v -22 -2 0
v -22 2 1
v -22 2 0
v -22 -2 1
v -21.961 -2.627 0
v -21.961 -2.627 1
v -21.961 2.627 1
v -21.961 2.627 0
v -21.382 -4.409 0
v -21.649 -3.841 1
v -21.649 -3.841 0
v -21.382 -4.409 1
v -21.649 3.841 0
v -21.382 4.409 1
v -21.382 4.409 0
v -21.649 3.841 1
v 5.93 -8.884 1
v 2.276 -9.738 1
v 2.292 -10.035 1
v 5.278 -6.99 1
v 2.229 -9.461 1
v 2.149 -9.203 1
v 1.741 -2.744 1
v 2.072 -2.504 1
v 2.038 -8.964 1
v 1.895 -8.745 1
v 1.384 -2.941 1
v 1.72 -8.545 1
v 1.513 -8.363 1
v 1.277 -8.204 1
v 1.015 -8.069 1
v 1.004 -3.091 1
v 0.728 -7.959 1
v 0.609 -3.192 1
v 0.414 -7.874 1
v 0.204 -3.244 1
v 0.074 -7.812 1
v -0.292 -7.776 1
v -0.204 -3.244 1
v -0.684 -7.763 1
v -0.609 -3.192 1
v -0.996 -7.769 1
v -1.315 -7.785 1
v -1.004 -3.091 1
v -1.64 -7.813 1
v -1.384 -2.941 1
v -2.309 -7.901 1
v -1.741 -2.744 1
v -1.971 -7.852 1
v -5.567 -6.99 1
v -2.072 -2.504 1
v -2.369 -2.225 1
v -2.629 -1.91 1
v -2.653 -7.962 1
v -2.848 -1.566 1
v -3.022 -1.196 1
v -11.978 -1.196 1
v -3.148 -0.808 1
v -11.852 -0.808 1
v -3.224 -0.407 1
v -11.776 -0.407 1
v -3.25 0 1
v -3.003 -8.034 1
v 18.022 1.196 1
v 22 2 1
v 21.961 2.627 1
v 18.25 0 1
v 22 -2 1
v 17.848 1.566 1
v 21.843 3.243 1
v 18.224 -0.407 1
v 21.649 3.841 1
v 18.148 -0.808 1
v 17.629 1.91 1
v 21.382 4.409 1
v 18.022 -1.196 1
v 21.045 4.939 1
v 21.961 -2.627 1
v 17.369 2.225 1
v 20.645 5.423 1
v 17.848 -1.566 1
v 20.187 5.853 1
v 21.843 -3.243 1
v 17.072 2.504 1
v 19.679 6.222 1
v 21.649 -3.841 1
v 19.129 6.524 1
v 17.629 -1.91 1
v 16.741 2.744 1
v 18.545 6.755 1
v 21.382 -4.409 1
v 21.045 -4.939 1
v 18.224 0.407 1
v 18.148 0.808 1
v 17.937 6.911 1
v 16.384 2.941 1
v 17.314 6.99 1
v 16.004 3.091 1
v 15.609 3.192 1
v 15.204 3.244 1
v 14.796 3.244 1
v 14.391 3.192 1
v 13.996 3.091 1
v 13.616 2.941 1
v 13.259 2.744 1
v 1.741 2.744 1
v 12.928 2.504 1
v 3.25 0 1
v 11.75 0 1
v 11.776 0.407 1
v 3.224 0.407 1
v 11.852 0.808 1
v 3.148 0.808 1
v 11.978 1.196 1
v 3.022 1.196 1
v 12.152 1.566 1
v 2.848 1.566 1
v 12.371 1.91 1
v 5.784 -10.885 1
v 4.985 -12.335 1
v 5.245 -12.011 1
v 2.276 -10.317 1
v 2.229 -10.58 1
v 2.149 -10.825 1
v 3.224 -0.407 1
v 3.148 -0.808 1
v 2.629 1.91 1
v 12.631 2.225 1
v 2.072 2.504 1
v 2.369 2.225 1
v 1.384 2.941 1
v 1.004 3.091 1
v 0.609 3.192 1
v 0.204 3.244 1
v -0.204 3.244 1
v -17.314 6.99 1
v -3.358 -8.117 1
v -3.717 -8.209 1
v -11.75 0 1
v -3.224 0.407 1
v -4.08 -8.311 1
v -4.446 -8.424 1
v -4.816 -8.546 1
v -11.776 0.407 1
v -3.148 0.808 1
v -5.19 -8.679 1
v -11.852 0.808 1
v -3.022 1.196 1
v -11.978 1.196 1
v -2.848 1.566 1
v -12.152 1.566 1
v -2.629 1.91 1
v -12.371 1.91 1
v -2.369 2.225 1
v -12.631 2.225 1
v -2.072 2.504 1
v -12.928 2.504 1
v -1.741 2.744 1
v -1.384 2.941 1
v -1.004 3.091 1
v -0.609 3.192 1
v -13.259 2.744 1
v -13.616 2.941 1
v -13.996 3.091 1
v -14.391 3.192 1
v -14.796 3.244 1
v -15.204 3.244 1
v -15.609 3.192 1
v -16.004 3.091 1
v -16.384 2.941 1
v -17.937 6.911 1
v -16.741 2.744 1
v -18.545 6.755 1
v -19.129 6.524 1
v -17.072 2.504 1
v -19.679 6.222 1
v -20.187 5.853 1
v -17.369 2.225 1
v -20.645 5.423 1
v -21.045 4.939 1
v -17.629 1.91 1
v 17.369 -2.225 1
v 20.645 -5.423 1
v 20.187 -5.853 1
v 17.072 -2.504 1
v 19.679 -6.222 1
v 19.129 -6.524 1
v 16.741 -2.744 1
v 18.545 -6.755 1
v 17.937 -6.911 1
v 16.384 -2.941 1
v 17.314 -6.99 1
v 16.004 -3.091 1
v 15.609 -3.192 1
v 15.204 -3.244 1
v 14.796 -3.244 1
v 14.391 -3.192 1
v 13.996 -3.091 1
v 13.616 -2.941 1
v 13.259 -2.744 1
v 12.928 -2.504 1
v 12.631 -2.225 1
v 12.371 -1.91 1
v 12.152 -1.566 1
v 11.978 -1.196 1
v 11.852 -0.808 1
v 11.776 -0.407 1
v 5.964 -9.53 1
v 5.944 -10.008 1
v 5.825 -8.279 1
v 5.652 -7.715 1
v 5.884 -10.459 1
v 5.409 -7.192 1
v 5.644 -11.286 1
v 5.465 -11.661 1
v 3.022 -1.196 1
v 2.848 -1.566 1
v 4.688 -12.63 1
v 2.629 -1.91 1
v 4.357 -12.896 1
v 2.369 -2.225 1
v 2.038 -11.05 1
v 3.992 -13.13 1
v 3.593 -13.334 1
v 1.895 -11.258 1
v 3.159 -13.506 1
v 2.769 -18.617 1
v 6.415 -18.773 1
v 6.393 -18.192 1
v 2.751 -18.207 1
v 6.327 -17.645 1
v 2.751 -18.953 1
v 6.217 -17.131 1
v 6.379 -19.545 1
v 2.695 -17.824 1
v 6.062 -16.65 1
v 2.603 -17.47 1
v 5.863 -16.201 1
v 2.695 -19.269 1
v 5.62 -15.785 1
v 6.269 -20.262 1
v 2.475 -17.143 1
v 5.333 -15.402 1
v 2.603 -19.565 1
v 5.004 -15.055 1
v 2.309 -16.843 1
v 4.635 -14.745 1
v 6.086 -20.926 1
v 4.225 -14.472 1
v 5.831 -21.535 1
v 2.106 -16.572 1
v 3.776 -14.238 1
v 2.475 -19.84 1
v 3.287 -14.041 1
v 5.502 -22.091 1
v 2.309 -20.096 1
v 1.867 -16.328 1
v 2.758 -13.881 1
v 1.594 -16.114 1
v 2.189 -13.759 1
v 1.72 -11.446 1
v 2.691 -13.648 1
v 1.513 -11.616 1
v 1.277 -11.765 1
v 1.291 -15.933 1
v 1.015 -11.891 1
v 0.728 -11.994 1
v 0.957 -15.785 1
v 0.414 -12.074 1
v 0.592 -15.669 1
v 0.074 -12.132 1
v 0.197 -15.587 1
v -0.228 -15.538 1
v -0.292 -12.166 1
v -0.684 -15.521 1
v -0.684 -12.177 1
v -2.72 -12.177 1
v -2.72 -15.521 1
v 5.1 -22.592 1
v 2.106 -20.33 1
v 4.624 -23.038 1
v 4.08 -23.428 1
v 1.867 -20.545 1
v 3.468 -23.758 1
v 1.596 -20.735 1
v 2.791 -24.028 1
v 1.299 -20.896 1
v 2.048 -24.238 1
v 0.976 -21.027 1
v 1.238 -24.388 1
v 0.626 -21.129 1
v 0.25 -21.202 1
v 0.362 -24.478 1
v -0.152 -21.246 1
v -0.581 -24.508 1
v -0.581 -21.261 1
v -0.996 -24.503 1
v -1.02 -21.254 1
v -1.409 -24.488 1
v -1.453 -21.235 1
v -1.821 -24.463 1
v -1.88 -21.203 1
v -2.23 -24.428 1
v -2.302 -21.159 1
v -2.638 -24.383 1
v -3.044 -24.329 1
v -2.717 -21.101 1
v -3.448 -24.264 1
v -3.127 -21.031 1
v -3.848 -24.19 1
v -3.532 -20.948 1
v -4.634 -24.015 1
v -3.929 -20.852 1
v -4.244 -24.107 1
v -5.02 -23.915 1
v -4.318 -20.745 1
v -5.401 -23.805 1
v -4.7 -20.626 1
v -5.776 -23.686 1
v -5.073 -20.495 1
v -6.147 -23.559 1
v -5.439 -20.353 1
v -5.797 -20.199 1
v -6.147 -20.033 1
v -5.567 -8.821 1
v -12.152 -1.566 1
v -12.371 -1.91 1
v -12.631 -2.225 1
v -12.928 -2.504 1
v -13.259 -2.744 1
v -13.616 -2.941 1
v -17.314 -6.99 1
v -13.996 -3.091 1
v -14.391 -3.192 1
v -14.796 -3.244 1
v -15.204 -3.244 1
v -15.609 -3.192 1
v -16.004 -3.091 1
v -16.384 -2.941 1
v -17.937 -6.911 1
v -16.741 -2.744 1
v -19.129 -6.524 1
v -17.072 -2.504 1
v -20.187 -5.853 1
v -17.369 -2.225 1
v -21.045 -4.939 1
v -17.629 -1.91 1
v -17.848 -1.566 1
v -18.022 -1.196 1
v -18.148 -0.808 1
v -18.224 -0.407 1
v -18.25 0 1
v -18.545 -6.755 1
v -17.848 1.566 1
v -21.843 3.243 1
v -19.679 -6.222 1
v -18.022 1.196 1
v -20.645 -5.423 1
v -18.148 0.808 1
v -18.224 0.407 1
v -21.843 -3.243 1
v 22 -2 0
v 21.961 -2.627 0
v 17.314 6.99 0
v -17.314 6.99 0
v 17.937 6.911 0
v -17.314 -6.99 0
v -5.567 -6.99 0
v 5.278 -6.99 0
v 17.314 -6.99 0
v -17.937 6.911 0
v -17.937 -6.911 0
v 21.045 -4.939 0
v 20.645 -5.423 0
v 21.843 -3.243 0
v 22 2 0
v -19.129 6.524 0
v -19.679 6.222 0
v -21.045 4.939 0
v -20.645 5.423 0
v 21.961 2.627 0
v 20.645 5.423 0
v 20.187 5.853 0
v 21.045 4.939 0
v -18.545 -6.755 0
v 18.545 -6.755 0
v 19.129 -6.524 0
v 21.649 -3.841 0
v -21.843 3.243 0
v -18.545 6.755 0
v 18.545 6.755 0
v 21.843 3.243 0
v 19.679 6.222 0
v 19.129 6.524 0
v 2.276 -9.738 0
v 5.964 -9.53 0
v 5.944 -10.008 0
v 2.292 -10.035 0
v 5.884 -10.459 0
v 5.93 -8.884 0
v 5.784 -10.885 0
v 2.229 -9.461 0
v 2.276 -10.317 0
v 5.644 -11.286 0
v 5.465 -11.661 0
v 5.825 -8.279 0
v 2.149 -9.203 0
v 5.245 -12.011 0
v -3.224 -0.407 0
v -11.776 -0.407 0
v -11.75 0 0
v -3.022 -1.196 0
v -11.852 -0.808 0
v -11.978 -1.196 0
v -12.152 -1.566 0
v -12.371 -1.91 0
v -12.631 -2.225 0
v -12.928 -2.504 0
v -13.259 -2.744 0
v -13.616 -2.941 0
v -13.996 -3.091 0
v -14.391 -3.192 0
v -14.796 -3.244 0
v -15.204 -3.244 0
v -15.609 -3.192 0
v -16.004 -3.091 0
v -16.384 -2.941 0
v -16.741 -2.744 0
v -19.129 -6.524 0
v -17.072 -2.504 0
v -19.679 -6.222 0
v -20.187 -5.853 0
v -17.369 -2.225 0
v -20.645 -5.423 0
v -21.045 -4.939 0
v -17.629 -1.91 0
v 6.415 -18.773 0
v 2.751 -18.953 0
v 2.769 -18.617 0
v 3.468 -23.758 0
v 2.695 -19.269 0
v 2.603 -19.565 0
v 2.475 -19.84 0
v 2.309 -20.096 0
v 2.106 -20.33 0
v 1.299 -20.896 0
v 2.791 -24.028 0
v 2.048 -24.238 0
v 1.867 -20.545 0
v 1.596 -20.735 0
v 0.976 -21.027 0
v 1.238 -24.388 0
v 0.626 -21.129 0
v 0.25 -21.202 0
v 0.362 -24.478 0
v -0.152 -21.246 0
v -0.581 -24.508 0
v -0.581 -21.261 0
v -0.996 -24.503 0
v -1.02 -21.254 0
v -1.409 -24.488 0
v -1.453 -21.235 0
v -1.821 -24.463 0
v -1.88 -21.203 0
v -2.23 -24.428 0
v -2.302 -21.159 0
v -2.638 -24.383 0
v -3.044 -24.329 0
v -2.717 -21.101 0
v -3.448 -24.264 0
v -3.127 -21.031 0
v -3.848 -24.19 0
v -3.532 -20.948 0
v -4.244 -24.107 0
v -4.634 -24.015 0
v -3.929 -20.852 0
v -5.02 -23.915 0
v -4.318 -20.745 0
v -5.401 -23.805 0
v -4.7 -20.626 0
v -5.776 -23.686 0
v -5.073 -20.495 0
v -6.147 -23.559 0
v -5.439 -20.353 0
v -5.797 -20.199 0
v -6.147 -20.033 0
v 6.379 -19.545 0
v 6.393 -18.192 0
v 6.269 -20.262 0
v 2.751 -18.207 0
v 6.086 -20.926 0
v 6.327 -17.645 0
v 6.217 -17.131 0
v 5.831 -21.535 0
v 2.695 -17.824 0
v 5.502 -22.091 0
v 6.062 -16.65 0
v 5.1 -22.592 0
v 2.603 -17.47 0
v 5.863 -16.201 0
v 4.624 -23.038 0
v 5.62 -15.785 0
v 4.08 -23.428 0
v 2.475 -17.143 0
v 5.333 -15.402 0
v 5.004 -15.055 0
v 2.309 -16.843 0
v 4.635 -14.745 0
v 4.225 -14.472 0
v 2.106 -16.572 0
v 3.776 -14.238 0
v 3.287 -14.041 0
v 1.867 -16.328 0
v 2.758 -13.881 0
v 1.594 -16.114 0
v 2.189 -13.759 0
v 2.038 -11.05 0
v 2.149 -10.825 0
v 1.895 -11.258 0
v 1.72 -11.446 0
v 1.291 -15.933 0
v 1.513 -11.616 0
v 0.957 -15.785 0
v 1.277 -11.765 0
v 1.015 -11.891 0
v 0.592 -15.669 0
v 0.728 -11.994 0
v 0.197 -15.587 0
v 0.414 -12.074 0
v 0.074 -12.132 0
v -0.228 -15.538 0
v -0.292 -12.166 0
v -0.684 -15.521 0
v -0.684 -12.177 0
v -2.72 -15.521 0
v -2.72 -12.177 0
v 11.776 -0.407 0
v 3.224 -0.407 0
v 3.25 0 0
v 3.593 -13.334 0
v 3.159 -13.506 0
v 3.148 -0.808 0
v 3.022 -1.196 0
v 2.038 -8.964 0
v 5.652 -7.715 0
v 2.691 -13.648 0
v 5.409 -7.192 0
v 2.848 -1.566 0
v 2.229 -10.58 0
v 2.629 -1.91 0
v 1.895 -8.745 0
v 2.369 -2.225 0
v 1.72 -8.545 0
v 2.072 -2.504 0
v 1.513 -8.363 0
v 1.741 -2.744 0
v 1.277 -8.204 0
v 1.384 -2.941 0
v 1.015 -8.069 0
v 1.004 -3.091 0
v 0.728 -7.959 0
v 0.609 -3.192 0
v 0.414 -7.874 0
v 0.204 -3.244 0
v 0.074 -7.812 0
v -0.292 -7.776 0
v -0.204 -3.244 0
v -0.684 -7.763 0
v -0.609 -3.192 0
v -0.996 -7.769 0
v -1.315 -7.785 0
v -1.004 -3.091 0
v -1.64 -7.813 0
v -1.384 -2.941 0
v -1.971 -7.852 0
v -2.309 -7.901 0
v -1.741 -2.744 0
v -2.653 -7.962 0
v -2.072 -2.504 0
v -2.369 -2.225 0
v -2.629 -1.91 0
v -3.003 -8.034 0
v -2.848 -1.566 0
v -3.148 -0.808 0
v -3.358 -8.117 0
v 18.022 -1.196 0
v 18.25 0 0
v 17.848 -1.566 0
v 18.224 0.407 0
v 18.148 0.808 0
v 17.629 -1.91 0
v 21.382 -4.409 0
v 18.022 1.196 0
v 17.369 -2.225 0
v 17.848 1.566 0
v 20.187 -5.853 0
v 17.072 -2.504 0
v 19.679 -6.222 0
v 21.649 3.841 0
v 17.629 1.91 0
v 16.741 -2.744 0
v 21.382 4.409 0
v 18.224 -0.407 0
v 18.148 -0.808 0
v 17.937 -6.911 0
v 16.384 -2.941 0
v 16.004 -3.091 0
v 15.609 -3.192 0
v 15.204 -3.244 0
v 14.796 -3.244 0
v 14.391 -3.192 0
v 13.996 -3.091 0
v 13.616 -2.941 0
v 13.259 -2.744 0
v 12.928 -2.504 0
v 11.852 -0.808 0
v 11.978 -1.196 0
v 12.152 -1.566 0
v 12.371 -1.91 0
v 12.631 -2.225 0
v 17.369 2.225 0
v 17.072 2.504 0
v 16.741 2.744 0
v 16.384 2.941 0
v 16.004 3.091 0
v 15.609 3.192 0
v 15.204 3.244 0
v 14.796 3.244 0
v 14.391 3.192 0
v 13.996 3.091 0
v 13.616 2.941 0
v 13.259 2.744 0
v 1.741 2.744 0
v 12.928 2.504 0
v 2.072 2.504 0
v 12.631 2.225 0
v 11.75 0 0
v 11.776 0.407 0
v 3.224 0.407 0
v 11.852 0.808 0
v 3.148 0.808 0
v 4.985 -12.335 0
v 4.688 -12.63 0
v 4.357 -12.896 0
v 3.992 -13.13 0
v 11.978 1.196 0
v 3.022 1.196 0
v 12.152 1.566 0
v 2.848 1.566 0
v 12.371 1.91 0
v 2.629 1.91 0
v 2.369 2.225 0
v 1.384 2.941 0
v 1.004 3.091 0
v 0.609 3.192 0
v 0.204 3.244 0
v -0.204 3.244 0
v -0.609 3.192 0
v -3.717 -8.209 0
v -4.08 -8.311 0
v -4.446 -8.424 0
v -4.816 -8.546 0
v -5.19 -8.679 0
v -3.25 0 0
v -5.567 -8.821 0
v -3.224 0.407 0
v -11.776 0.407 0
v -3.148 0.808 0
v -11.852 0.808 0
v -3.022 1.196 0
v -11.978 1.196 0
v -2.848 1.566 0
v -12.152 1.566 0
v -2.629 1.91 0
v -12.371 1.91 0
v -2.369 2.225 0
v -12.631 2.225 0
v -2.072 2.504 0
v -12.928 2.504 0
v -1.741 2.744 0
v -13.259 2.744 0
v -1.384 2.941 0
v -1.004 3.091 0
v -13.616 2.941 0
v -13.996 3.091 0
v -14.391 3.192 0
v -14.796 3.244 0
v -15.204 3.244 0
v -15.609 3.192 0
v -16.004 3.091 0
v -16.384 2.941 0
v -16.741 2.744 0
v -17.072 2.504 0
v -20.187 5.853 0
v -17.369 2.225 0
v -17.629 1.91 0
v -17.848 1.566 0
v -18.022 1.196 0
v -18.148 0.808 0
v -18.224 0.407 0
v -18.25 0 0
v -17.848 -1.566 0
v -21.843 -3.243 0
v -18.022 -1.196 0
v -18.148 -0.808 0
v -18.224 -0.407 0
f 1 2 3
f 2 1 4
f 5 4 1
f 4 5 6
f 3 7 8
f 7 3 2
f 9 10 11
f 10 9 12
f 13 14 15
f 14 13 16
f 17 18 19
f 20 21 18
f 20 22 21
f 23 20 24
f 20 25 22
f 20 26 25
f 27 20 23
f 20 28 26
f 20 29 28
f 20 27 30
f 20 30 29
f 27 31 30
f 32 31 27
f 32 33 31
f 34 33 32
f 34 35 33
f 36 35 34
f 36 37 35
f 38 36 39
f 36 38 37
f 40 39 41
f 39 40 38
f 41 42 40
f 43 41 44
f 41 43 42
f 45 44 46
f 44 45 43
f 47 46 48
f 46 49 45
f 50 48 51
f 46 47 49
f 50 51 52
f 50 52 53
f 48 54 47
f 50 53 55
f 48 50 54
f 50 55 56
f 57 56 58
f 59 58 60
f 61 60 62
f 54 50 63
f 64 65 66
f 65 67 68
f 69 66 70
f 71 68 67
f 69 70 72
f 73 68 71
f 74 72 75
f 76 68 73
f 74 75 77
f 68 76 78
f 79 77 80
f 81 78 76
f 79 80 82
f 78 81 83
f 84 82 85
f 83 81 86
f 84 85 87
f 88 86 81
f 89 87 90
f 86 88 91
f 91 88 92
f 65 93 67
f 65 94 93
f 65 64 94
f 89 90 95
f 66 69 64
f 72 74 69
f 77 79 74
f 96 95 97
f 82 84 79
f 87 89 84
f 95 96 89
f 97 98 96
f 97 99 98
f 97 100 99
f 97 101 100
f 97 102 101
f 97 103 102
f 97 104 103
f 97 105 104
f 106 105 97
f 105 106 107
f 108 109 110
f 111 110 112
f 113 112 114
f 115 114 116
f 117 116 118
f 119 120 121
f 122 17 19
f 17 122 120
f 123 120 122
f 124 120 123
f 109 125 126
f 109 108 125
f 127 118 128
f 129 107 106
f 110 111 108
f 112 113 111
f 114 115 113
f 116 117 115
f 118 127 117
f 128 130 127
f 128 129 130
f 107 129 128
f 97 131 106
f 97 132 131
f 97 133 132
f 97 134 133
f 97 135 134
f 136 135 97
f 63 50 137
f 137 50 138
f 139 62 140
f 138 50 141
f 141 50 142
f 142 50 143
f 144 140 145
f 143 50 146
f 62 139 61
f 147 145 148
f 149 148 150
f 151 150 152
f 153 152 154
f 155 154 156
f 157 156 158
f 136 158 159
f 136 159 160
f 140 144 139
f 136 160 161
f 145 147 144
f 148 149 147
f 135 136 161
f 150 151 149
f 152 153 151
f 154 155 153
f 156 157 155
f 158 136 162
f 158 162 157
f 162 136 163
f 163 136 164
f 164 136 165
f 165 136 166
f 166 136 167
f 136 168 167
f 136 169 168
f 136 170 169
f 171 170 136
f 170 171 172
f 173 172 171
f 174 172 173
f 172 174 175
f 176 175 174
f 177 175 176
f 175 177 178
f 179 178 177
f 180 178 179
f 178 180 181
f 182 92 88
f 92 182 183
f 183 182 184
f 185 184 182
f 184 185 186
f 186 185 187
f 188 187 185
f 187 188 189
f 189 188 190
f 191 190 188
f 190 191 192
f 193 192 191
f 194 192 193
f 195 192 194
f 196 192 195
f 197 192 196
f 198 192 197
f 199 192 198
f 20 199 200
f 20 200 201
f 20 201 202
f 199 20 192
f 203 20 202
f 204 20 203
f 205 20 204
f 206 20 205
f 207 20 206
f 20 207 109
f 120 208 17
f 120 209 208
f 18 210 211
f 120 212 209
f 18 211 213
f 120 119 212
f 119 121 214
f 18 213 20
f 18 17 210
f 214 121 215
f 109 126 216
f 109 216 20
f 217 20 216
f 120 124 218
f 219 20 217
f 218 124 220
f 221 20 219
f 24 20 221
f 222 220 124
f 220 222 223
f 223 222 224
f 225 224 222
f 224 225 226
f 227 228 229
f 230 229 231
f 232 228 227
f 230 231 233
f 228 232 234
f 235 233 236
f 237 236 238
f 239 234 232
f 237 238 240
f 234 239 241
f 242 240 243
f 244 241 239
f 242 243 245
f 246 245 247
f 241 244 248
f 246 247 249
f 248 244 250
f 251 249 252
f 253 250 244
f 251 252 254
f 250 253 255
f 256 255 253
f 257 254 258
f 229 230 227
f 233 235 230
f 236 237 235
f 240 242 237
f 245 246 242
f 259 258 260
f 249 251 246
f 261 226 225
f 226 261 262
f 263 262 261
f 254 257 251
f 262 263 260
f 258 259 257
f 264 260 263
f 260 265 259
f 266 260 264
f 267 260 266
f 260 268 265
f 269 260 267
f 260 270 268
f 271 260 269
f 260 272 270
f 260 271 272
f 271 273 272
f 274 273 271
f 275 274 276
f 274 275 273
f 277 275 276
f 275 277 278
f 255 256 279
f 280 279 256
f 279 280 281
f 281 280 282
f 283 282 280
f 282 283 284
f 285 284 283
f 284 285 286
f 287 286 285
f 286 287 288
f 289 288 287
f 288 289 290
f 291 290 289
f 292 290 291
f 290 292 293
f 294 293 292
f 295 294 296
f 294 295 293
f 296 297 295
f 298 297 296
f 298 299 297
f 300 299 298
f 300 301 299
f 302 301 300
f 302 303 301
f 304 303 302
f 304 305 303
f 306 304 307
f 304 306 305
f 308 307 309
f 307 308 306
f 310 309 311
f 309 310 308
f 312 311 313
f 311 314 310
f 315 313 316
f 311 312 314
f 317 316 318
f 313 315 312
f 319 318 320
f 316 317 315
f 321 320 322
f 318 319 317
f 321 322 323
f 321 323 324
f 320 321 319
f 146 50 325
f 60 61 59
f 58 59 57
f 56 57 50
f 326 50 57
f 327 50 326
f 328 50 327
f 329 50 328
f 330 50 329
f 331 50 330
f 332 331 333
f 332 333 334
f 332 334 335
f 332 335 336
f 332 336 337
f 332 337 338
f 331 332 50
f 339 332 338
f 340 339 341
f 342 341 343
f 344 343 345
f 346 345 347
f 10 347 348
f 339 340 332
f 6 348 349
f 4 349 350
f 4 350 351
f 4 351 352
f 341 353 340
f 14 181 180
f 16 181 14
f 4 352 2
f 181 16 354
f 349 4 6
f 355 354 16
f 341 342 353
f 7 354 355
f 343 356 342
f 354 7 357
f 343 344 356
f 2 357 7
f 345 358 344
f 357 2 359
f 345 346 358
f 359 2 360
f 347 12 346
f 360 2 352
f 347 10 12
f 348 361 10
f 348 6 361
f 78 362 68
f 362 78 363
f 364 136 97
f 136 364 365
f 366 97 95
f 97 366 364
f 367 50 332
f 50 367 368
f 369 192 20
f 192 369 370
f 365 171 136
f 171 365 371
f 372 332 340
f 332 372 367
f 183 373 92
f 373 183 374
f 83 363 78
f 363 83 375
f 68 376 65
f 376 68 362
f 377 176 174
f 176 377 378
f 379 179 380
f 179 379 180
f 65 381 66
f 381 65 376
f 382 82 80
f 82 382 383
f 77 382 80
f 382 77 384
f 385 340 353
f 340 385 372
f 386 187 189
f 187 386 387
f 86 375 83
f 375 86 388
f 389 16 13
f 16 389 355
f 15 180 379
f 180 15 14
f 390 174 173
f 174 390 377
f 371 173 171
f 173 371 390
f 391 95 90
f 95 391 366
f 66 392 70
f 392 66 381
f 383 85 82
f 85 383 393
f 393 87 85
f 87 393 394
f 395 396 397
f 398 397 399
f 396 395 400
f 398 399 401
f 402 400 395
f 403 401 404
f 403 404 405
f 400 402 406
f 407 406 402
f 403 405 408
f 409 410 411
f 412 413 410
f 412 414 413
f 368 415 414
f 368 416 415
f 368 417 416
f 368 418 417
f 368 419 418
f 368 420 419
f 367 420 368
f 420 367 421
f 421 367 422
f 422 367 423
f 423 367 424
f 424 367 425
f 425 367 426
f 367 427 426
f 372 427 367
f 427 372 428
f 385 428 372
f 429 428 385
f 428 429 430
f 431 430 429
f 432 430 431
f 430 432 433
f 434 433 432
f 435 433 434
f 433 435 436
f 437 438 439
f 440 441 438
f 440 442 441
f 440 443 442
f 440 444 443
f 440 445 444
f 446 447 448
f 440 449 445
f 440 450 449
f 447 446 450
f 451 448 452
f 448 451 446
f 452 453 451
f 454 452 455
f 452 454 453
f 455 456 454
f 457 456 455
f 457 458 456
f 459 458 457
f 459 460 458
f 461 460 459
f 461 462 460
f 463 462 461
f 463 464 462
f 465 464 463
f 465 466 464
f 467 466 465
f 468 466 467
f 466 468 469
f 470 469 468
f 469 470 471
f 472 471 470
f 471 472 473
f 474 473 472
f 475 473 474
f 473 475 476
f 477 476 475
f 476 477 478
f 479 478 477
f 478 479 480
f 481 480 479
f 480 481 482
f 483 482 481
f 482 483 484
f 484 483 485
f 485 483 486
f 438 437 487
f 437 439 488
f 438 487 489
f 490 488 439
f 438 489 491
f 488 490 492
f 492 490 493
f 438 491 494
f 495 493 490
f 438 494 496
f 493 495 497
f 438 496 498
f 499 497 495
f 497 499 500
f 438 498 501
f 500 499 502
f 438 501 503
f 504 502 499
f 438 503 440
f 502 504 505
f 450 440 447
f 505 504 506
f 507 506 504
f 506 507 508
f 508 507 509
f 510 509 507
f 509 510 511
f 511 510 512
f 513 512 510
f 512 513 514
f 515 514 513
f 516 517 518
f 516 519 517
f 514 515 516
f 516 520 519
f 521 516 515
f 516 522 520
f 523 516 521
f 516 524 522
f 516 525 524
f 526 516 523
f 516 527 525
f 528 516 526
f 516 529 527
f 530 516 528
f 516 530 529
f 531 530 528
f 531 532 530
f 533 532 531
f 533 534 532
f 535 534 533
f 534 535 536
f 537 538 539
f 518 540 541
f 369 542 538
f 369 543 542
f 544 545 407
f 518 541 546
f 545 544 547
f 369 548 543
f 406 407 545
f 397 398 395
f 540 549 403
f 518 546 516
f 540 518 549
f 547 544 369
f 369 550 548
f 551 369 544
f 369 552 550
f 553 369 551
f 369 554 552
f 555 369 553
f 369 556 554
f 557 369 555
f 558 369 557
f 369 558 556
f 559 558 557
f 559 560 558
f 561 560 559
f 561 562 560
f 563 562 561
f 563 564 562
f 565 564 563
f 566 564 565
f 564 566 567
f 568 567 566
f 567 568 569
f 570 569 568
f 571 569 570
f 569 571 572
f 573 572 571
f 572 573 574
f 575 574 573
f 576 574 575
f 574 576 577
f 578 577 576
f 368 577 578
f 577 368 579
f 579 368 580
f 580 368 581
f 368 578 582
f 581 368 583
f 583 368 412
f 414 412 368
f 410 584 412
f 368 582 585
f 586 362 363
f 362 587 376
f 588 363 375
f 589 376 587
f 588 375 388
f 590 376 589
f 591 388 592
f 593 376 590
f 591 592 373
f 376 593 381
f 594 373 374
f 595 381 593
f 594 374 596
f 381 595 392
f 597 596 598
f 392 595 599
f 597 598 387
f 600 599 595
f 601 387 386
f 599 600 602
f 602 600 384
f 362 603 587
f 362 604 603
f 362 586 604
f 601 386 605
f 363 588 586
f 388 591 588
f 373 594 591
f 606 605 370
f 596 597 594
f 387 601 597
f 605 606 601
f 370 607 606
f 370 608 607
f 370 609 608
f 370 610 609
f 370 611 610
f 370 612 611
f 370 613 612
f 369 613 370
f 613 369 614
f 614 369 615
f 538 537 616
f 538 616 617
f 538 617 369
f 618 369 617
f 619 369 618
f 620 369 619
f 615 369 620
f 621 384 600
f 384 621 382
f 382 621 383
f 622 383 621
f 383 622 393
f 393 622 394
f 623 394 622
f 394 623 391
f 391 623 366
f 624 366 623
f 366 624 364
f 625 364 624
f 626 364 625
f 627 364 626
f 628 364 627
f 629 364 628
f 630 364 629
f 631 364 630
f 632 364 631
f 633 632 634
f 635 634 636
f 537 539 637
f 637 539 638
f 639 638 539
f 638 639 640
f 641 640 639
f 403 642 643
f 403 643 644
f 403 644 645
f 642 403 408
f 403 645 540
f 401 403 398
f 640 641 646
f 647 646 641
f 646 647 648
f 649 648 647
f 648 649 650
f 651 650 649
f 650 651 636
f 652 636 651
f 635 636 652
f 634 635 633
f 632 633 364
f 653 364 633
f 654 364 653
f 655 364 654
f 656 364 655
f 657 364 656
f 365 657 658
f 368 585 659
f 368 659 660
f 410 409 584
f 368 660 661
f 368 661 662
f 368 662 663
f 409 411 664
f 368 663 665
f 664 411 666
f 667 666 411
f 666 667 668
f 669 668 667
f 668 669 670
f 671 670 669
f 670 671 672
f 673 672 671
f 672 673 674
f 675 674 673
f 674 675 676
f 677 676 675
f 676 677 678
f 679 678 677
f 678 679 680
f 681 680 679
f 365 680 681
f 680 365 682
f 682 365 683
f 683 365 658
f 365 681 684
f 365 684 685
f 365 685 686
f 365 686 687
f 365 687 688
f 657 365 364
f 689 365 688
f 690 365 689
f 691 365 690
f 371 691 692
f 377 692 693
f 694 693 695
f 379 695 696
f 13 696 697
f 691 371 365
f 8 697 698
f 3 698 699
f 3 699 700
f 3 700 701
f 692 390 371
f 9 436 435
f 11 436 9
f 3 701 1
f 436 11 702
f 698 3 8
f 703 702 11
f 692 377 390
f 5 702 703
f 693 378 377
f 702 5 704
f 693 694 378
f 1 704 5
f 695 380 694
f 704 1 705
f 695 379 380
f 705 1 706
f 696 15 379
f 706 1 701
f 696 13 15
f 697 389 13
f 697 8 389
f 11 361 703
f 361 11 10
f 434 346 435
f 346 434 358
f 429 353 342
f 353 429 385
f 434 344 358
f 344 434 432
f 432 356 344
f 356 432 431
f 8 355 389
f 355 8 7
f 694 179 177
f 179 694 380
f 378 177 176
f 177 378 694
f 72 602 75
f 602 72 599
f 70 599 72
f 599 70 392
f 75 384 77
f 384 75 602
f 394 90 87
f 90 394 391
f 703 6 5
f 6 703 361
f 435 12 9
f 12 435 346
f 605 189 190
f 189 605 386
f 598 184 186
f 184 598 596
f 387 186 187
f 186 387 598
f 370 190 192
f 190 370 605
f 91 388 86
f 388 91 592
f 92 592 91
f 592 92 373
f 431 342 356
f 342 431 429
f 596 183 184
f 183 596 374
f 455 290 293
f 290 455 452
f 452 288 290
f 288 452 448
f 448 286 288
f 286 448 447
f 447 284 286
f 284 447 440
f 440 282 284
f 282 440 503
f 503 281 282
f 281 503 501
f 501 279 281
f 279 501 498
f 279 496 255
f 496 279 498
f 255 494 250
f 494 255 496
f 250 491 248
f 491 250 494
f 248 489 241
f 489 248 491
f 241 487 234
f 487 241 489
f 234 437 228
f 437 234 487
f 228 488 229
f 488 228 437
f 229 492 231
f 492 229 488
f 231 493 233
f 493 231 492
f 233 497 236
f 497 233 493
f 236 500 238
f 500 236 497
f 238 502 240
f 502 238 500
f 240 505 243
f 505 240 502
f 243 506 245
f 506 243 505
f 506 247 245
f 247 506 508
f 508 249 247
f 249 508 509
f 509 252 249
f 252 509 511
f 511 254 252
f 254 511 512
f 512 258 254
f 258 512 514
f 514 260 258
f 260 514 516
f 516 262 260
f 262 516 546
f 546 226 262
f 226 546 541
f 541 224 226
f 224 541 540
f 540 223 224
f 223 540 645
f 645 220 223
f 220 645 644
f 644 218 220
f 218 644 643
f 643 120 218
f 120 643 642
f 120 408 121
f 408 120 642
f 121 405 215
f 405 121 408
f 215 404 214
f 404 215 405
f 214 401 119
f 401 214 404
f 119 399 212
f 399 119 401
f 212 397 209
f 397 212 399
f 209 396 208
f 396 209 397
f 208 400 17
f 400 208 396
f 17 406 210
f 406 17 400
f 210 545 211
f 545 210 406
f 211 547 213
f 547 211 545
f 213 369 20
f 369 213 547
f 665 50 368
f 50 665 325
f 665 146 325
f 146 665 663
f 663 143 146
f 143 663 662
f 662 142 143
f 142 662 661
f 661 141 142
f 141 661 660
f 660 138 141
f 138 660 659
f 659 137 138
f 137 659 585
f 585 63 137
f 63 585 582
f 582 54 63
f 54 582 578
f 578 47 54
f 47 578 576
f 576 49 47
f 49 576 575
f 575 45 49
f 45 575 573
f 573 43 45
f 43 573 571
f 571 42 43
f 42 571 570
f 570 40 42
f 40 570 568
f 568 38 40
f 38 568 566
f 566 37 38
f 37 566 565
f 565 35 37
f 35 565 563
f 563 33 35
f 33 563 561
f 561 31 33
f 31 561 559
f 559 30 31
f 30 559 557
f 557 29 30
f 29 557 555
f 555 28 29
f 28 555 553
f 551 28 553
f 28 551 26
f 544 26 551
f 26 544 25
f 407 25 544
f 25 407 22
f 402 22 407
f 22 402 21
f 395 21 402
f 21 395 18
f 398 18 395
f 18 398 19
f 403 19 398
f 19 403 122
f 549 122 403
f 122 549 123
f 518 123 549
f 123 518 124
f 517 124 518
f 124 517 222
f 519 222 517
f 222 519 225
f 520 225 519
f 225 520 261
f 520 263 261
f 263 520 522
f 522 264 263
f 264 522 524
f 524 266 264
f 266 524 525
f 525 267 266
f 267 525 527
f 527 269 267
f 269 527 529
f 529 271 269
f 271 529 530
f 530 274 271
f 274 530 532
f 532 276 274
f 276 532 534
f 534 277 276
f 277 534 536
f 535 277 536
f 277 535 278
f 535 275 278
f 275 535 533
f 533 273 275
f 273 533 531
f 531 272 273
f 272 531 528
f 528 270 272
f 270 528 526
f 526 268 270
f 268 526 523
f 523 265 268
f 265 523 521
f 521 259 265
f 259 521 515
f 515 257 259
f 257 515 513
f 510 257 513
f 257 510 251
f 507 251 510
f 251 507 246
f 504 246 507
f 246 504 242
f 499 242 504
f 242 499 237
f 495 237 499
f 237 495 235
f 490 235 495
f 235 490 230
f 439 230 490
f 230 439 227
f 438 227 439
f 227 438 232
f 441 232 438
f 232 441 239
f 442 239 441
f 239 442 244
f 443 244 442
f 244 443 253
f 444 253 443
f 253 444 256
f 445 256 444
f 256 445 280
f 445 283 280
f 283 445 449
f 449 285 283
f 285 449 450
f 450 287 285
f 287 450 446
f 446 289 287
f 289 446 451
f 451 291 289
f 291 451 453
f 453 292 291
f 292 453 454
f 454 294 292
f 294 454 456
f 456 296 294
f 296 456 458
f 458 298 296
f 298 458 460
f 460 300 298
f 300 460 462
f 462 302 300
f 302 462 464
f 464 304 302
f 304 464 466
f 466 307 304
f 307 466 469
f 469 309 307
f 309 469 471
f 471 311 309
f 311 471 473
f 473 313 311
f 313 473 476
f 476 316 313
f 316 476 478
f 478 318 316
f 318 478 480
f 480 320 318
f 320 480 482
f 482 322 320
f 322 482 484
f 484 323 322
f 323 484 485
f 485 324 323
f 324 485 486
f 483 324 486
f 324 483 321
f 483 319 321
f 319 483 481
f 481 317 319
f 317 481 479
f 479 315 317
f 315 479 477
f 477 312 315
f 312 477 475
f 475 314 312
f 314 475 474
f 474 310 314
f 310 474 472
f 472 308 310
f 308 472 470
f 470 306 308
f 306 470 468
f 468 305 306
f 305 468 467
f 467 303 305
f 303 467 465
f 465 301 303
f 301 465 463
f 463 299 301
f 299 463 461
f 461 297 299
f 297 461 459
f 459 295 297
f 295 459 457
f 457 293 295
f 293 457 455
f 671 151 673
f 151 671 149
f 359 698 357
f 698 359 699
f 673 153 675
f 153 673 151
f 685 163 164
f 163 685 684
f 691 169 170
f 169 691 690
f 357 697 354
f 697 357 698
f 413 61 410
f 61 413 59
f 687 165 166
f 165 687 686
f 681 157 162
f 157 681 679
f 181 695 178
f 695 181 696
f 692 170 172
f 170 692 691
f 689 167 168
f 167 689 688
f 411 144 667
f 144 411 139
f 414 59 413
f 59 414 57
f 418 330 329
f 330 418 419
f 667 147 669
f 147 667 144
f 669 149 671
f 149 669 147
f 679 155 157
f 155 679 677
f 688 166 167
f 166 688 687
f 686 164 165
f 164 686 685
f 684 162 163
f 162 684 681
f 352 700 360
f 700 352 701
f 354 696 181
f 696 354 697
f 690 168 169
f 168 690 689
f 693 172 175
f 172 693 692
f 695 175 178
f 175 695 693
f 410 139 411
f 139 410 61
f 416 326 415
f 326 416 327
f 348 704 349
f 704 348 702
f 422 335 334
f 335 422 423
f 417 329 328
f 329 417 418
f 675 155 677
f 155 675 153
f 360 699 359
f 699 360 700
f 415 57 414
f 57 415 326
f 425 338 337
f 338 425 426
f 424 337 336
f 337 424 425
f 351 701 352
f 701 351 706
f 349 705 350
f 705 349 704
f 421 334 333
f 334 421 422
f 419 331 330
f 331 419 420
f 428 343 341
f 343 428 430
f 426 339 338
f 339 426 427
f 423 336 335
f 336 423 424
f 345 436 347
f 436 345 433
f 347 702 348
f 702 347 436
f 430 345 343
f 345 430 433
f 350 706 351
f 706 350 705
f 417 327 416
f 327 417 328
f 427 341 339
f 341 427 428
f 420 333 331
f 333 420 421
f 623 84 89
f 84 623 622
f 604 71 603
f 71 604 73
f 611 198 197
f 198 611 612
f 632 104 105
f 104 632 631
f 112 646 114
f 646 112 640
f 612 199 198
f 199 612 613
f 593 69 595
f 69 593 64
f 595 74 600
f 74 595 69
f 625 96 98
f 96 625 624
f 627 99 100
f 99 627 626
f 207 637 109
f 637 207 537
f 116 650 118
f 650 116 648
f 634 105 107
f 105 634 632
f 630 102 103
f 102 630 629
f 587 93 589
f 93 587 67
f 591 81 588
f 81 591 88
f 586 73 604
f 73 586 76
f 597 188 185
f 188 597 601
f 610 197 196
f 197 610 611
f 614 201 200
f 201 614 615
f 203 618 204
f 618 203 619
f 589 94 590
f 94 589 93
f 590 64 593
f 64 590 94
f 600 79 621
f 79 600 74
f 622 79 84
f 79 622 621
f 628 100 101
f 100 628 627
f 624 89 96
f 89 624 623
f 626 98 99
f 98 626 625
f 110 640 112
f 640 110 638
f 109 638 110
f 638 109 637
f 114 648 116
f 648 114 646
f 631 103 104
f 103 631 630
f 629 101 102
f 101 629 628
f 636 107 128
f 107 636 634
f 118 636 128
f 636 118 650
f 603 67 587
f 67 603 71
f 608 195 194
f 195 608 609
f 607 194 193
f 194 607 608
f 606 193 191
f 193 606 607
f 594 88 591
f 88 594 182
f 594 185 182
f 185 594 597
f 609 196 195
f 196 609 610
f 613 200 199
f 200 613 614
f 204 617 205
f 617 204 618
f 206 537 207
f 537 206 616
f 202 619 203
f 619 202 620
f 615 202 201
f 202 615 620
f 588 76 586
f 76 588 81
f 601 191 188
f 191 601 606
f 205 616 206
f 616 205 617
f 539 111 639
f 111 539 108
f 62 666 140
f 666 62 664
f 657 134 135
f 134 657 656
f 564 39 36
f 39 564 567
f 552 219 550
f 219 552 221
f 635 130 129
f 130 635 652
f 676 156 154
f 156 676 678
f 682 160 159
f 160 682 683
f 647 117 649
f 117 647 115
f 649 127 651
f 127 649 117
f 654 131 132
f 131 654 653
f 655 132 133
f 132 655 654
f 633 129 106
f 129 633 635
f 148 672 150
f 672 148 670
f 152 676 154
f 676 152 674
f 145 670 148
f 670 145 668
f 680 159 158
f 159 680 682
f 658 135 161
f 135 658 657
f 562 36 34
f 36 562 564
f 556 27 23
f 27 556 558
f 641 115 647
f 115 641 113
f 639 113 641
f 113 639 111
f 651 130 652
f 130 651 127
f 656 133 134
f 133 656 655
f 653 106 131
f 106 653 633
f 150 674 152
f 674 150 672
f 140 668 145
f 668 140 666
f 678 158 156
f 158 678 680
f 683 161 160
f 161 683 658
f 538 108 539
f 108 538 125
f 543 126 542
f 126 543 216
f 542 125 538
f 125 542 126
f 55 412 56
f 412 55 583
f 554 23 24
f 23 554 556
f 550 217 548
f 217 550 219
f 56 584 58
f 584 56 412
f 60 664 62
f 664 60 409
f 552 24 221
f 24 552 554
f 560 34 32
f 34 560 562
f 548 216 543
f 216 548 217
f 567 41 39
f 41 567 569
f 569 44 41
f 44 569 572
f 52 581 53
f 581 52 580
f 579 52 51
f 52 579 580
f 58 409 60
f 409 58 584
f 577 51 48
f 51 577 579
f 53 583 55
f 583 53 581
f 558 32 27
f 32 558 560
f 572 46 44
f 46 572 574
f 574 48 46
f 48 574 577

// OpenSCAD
$fn = 50;


difference() {
	union() {
		translate(v = [0, 0, 0]) {
			rotate(a = [0, 0, 0]) {
				hull() {
					translate(v = [-17.0000000000, 2.0000000000, 0]) {
						rotate(a = [0, 0, 0]) {
							translate(v = [0, 0, 0]) {
								rotate(a = [0, 0, 0]) {
									cylinder(h = 1, r = 5);
								}
							}
						}
					}
					translate(v = [17.0000000000, 2.0000000000, 0]) {
						rotate(a = [0, 0, 0]) {
							translate(v = [0, 0, 0]) {
								rotate(a = [0, 0, 0]) {
									cylinder(h = 1, r = 5);
								}
							}
						}
					}
					translate(v = [-17.0000000000, -2.0000000000, 0]) {
						rotate(a = [0, 0, 0]) {
							translate(v = [0, 0, 0]) {
								rotate(a = [0, 0, 0]) {
									cylinder(h = 1, r = 5);
								}
							}
						}
					}
					translate(v = [17.0000000000, -2.0000000000, 0]) {
						rotate(a = [0, 0, 0]) {
							translate(v = [0, 0, 0]) {
								rotate(a = [0, 0, 0]) {
									cylinder(h = 1, r = 5);
								}
							}
						}
					}
				}
			}
		}
		translate(v = [0, -5, 0]) {
			rotate(a = [0, 0, 0]) {
				linear_extrude(height = 1) {
					text(font = "DejaVu Sans Mono:style=Bold", halign = "center", size = 19.0000000000, text = "3", valign = "top");
				}
			}
		}
	}
	union() {
		translate(v = [-15.0000000000, 0.0000000000, -125.0000000000]) {
			rotate(a = [0, 0, 0]) {
				cylinder(h = 250, r = 3.2500000000);
			}
		}
		translate(v = [15.0000000000, 0.0000000000, -125.0000000000]) {
			rotate(a = [0, 0, 0]) {
				cylinder(h = 250, r = 3.2500000000);
			}
		}
		translate(v = [15.0000000000, 0.0000000000, -125.0000000000]) {
			rotate(a = [0, 0, 0]) {
				cylinder(h = 250, r = 3.2500000000);
			}
		}
		translate(v = [0, 0, -125.0000000000]) {
			rotate(a = [0, 0, 0]) {
				cylinder(h = 250, r = 3.2500000000);
			}
		}
	}
}
